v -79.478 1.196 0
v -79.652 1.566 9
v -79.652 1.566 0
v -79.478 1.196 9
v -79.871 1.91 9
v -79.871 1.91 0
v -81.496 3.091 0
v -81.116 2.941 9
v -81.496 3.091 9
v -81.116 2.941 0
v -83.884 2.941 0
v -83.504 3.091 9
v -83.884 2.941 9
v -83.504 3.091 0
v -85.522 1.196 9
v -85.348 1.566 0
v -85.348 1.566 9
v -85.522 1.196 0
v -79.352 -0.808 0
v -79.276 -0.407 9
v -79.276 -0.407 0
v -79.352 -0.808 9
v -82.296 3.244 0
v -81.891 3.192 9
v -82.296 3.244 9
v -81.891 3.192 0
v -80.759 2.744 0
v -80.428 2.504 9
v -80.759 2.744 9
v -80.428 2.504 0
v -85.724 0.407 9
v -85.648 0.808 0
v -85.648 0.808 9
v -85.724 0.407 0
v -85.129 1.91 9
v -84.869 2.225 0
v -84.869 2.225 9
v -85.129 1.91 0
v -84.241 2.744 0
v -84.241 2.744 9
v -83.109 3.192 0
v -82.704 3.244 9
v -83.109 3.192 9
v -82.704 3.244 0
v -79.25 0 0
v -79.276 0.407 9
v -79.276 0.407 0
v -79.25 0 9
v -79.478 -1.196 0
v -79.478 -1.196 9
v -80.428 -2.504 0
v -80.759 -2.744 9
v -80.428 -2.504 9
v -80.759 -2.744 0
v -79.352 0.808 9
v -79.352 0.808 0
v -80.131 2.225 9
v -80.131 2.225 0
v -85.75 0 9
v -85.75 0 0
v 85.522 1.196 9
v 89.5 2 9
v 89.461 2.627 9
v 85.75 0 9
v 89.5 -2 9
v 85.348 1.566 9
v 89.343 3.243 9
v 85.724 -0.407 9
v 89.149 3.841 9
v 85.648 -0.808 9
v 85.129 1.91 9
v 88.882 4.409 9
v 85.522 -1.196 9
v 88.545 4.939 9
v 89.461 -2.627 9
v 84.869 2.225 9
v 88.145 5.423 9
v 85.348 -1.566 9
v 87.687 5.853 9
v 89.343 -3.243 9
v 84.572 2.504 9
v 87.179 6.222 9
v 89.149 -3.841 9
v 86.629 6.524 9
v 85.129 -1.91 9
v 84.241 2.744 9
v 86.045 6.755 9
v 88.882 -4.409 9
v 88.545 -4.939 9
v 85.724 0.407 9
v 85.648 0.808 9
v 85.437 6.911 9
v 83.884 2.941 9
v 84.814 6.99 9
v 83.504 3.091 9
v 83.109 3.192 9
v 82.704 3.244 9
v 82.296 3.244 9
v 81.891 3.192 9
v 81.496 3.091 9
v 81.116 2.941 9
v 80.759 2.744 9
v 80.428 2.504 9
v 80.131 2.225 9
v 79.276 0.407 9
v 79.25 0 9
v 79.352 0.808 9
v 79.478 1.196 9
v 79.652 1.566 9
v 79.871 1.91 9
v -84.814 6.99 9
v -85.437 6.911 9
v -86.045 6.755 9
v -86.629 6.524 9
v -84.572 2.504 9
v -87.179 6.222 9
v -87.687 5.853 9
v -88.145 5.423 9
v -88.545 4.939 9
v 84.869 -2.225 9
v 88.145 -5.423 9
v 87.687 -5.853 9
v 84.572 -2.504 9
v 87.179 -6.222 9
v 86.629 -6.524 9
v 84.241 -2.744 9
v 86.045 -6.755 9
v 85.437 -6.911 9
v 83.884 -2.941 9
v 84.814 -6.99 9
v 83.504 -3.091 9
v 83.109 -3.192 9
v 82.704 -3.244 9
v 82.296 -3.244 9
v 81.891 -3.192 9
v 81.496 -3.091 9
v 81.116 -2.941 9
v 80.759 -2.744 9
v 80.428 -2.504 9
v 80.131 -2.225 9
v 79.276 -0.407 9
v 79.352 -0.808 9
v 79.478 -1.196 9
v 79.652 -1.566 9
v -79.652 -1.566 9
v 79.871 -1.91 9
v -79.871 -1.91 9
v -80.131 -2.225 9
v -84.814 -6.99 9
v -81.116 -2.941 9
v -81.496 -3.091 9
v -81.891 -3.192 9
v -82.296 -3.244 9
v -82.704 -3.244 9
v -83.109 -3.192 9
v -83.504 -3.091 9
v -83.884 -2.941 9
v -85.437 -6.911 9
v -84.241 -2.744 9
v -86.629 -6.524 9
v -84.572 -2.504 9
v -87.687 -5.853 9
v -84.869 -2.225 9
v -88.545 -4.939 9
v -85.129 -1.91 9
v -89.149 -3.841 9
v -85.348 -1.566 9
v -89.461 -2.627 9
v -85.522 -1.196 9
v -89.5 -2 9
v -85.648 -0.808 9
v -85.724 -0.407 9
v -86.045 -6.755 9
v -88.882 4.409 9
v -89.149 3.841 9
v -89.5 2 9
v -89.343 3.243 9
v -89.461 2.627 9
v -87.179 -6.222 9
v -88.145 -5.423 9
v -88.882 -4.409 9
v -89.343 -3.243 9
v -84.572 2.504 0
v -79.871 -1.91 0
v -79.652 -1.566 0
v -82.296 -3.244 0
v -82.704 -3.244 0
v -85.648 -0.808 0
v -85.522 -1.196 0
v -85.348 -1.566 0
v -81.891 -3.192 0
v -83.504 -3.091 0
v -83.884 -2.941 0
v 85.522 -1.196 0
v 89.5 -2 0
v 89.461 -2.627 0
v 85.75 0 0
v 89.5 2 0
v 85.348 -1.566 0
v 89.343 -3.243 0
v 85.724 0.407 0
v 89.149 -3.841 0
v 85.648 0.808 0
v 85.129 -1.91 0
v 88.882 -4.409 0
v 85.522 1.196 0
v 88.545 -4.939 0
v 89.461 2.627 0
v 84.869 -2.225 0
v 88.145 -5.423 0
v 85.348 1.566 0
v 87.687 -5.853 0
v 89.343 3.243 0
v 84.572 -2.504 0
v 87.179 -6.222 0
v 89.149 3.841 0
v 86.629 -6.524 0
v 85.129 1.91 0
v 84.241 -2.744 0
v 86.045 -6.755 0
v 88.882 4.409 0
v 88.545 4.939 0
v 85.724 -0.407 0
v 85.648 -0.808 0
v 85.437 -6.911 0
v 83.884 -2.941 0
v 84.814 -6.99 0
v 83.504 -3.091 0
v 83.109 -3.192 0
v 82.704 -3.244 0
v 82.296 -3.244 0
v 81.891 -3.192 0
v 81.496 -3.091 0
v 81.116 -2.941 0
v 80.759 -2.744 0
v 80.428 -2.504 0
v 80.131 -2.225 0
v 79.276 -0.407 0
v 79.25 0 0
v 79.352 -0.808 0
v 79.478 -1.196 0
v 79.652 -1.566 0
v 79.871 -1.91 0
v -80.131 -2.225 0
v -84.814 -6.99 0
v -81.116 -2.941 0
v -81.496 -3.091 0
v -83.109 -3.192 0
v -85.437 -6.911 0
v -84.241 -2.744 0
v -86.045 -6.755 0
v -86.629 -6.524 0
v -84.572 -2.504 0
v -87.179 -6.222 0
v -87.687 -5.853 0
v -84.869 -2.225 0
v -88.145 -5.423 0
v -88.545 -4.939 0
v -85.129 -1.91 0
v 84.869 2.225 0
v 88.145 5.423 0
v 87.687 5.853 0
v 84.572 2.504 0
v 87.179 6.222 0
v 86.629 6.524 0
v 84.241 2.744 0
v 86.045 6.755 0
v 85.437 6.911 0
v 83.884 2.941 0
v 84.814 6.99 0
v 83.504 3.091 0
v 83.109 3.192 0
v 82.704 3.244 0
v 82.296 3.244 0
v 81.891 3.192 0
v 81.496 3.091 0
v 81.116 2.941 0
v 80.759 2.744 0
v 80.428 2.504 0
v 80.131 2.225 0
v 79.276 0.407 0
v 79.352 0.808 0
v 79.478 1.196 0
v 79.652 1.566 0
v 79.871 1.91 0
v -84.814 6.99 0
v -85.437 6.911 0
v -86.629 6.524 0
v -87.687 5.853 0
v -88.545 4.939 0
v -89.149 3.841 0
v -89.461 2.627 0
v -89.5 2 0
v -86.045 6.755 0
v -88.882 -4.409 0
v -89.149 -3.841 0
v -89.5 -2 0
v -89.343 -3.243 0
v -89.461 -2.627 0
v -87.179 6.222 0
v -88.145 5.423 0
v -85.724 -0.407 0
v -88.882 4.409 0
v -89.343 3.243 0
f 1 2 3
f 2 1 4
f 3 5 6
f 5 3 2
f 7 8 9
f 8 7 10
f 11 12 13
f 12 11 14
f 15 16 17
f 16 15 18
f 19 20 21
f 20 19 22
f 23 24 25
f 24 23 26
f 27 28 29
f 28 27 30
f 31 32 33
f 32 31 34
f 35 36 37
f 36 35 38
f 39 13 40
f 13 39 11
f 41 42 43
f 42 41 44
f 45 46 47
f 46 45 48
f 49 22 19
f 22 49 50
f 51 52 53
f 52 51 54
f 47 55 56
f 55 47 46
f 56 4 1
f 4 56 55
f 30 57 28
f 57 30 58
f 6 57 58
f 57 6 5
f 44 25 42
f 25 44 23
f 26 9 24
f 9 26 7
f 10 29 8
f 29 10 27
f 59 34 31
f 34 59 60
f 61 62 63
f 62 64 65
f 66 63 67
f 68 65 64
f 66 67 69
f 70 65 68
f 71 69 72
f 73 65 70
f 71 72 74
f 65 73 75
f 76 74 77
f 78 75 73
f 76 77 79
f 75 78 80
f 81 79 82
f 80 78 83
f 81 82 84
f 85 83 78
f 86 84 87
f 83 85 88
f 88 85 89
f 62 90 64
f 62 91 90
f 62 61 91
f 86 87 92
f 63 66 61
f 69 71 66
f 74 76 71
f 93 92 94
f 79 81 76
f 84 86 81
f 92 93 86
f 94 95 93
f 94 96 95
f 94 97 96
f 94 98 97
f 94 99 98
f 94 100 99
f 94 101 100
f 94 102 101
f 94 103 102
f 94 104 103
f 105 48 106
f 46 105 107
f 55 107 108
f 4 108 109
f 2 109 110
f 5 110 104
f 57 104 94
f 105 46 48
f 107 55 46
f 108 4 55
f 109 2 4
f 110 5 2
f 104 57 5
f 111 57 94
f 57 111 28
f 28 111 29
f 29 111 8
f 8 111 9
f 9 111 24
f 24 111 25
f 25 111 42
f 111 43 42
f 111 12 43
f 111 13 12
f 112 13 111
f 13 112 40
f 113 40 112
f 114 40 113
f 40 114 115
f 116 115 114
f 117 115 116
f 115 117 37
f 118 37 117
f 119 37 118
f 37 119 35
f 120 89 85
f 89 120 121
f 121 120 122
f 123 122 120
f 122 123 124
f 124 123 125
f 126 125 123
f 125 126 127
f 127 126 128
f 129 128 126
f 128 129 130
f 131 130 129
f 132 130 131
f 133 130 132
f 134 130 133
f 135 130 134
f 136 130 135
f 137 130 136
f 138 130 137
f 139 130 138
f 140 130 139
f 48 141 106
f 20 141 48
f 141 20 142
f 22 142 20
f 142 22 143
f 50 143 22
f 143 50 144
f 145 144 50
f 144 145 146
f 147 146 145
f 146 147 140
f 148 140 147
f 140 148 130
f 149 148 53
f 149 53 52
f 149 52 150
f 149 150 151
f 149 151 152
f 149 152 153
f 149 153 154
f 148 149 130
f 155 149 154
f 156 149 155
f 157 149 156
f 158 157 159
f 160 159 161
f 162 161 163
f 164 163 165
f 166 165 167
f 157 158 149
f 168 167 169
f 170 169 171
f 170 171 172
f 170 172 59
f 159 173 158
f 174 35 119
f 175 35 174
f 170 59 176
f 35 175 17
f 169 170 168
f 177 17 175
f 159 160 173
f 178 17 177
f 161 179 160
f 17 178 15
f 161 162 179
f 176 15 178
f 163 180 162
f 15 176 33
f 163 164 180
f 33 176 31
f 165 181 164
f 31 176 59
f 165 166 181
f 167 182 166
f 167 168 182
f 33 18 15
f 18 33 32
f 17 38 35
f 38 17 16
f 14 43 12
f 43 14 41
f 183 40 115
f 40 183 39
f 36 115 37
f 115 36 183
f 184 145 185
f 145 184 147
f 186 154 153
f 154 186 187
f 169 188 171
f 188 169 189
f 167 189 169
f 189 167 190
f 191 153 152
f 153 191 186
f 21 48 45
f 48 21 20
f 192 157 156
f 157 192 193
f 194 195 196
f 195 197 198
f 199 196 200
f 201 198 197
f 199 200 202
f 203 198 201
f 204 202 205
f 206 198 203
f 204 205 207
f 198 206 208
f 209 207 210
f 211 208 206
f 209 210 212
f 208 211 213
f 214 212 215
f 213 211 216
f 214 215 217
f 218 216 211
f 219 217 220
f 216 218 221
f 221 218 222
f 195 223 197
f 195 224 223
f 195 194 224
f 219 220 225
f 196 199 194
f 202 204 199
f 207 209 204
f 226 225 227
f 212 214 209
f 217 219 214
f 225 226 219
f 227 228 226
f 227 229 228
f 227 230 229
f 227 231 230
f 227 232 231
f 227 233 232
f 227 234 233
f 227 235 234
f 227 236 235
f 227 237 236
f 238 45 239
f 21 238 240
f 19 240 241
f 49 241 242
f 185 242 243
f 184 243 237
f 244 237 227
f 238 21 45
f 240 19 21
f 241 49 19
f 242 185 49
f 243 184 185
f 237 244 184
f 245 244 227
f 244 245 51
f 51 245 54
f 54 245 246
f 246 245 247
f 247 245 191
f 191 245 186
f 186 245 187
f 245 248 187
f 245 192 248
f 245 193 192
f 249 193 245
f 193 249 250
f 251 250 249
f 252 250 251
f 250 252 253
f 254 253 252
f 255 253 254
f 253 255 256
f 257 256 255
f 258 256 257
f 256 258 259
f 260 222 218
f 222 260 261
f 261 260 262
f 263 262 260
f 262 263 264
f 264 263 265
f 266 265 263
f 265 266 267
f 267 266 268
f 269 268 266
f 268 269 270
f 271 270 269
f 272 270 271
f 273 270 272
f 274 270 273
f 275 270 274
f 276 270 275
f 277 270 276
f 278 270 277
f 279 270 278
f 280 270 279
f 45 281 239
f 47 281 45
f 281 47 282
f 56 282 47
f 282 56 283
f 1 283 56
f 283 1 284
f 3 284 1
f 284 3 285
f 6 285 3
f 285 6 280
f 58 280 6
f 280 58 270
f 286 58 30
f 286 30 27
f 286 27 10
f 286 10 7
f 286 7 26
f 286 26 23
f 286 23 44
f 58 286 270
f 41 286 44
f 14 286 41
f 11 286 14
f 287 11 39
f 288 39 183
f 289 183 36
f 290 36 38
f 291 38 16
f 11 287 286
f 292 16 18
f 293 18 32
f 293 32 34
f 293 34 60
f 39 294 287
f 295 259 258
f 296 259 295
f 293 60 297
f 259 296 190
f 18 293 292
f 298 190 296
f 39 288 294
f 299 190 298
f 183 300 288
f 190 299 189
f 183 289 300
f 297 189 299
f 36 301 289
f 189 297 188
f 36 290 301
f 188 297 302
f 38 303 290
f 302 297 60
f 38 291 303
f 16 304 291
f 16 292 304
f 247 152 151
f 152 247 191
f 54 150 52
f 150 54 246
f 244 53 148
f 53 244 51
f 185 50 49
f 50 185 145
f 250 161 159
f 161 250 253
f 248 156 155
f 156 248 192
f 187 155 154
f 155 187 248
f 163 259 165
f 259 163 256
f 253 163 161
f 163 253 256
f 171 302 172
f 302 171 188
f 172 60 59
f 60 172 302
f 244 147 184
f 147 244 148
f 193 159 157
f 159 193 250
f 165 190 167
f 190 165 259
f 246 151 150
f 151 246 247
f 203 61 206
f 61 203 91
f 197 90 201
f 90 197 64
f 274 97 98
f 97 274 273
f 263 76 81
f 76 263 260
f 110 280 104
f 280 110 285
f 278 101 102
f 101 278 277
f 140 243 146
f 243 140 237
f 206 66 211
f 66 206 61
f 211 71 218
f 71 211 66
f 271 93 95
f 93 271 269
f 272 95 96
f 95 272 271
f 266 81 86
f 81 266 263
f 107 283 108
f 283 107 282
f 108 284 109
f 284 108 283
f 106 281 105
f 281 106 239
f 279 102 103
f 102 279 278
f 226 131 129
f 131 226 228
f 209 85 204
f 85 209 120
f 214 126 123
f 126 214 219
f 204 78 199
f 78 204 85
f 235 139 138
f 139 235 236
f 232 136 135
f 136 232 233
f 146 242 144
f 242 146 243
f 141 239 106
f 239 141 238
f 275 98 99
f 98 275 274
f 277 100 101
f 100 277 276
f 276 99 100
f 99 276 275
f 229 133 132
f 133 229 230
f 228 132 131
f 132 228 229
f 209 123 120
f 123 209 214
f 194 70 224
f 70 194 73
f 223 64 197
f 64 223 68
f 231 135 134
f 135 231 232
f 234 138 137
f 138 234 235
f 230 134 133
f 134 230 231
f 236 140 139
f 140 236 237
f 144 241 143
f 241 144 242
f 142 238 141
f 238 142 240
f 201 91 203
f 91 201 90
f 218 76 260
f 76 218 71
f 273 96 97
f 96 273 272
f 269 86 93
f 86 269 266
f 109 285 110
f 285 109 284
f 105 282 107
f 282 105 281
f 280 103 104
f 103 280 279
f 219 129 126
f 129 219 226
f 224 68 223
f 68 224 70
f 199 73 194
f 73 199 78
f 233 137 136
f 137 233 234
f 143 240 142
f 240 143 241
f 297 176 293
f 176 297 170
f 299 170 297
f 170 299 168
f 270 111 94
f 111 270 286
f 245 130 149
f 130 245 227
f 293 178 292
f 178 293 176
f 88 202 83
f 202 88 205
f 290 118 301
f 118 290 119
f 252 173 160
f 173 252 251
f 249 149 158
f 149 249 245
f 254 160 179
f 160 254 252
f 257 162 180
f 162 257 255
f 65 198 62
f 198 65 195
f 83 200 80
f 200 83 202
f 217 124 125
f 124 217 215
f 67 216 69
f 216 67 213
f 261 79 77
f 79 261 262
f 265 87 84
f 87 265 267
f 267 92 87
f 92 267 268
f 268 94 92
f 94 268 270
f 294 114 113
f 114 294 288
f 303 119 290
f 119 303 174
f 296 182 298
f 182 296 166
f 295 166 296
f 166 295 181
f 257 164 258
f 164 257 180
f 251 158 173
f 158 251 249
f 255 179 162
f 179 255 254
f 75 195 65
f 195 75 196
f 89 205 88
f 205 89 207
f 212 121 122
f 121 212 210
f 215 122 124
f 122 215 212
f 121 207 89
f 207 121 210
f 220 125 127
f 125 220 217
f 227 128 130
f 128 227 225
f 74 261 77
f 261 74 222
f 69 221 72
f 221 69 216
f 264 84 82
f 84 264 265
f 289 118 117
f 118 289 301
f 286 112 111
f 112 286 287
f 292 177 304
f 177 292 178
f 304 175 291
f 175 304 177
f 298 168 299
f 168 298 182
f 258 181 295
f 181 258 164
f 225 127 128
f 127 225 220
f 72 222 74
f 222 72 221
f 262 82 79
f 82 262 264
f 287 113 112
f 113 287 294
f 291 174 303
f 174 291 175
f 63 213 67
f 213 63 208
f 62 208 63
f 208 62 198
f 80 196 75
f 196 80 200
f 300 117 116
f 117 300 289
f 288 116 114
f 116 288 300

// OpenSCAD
$fn = 50;


difference() {
	union() {
		hull() {
			translate(v = [-84.5000000000, 2.0000000000, 0]) {
				cylinder(h = 9, r = 5);
			}
			translate(v = [84.5000000000, 2.0000000000, 0]) {
				cylinder(h = 9, r = 5);
			}
			translate(v = [-84.5000000000, -2.0000000000, 0]) {
				cylinder(h = 9, r = 5);
			}
			translate(v = [84.5000000000, -2.0000000000, 0]) {
				cylinder(h = 9, r = 5);
			}
		}
	}
	union() {
		translate(v = [-82.5000000000, 0.0000000000, 0]) {
			cylinder(h = 9, r = 3.2500000000);
		}
		translate(v = [82.5000000000, 0.0000000000, 0]) {
			cylinder(h = 9, r = 3.2500000000);
		}
		translate(v = [-82.5000000000, 0.0000000000, 0]) {
			cylinder(h = 9, r = 1.8000000000);
		}
		translate(v = [82.5000000000, 0.0000000000, 0]) {
			cylinder(h = 9, r = 1.8000000000);
		}
		translate(v = [-82.5000000000, 0.0000000000, 0]) {
			cylinder(h = 9, r = 1.8000000000);
		}
		translate(v = [82.5000000000, 0.0000000000, 0]) {
			cylinder(h = 9, r = 1.8000000000);
		}
		translate(v = [-82.5000000000, 0.0000000000, 0]) {
			cylinder(h = 9, r = 1.8000000000);
		}
		translate(v = [82.5000000000, 0.0000000000, 0]) {
			cylinder(h = 9, r = 1.8000000000);
		}
	}
}
